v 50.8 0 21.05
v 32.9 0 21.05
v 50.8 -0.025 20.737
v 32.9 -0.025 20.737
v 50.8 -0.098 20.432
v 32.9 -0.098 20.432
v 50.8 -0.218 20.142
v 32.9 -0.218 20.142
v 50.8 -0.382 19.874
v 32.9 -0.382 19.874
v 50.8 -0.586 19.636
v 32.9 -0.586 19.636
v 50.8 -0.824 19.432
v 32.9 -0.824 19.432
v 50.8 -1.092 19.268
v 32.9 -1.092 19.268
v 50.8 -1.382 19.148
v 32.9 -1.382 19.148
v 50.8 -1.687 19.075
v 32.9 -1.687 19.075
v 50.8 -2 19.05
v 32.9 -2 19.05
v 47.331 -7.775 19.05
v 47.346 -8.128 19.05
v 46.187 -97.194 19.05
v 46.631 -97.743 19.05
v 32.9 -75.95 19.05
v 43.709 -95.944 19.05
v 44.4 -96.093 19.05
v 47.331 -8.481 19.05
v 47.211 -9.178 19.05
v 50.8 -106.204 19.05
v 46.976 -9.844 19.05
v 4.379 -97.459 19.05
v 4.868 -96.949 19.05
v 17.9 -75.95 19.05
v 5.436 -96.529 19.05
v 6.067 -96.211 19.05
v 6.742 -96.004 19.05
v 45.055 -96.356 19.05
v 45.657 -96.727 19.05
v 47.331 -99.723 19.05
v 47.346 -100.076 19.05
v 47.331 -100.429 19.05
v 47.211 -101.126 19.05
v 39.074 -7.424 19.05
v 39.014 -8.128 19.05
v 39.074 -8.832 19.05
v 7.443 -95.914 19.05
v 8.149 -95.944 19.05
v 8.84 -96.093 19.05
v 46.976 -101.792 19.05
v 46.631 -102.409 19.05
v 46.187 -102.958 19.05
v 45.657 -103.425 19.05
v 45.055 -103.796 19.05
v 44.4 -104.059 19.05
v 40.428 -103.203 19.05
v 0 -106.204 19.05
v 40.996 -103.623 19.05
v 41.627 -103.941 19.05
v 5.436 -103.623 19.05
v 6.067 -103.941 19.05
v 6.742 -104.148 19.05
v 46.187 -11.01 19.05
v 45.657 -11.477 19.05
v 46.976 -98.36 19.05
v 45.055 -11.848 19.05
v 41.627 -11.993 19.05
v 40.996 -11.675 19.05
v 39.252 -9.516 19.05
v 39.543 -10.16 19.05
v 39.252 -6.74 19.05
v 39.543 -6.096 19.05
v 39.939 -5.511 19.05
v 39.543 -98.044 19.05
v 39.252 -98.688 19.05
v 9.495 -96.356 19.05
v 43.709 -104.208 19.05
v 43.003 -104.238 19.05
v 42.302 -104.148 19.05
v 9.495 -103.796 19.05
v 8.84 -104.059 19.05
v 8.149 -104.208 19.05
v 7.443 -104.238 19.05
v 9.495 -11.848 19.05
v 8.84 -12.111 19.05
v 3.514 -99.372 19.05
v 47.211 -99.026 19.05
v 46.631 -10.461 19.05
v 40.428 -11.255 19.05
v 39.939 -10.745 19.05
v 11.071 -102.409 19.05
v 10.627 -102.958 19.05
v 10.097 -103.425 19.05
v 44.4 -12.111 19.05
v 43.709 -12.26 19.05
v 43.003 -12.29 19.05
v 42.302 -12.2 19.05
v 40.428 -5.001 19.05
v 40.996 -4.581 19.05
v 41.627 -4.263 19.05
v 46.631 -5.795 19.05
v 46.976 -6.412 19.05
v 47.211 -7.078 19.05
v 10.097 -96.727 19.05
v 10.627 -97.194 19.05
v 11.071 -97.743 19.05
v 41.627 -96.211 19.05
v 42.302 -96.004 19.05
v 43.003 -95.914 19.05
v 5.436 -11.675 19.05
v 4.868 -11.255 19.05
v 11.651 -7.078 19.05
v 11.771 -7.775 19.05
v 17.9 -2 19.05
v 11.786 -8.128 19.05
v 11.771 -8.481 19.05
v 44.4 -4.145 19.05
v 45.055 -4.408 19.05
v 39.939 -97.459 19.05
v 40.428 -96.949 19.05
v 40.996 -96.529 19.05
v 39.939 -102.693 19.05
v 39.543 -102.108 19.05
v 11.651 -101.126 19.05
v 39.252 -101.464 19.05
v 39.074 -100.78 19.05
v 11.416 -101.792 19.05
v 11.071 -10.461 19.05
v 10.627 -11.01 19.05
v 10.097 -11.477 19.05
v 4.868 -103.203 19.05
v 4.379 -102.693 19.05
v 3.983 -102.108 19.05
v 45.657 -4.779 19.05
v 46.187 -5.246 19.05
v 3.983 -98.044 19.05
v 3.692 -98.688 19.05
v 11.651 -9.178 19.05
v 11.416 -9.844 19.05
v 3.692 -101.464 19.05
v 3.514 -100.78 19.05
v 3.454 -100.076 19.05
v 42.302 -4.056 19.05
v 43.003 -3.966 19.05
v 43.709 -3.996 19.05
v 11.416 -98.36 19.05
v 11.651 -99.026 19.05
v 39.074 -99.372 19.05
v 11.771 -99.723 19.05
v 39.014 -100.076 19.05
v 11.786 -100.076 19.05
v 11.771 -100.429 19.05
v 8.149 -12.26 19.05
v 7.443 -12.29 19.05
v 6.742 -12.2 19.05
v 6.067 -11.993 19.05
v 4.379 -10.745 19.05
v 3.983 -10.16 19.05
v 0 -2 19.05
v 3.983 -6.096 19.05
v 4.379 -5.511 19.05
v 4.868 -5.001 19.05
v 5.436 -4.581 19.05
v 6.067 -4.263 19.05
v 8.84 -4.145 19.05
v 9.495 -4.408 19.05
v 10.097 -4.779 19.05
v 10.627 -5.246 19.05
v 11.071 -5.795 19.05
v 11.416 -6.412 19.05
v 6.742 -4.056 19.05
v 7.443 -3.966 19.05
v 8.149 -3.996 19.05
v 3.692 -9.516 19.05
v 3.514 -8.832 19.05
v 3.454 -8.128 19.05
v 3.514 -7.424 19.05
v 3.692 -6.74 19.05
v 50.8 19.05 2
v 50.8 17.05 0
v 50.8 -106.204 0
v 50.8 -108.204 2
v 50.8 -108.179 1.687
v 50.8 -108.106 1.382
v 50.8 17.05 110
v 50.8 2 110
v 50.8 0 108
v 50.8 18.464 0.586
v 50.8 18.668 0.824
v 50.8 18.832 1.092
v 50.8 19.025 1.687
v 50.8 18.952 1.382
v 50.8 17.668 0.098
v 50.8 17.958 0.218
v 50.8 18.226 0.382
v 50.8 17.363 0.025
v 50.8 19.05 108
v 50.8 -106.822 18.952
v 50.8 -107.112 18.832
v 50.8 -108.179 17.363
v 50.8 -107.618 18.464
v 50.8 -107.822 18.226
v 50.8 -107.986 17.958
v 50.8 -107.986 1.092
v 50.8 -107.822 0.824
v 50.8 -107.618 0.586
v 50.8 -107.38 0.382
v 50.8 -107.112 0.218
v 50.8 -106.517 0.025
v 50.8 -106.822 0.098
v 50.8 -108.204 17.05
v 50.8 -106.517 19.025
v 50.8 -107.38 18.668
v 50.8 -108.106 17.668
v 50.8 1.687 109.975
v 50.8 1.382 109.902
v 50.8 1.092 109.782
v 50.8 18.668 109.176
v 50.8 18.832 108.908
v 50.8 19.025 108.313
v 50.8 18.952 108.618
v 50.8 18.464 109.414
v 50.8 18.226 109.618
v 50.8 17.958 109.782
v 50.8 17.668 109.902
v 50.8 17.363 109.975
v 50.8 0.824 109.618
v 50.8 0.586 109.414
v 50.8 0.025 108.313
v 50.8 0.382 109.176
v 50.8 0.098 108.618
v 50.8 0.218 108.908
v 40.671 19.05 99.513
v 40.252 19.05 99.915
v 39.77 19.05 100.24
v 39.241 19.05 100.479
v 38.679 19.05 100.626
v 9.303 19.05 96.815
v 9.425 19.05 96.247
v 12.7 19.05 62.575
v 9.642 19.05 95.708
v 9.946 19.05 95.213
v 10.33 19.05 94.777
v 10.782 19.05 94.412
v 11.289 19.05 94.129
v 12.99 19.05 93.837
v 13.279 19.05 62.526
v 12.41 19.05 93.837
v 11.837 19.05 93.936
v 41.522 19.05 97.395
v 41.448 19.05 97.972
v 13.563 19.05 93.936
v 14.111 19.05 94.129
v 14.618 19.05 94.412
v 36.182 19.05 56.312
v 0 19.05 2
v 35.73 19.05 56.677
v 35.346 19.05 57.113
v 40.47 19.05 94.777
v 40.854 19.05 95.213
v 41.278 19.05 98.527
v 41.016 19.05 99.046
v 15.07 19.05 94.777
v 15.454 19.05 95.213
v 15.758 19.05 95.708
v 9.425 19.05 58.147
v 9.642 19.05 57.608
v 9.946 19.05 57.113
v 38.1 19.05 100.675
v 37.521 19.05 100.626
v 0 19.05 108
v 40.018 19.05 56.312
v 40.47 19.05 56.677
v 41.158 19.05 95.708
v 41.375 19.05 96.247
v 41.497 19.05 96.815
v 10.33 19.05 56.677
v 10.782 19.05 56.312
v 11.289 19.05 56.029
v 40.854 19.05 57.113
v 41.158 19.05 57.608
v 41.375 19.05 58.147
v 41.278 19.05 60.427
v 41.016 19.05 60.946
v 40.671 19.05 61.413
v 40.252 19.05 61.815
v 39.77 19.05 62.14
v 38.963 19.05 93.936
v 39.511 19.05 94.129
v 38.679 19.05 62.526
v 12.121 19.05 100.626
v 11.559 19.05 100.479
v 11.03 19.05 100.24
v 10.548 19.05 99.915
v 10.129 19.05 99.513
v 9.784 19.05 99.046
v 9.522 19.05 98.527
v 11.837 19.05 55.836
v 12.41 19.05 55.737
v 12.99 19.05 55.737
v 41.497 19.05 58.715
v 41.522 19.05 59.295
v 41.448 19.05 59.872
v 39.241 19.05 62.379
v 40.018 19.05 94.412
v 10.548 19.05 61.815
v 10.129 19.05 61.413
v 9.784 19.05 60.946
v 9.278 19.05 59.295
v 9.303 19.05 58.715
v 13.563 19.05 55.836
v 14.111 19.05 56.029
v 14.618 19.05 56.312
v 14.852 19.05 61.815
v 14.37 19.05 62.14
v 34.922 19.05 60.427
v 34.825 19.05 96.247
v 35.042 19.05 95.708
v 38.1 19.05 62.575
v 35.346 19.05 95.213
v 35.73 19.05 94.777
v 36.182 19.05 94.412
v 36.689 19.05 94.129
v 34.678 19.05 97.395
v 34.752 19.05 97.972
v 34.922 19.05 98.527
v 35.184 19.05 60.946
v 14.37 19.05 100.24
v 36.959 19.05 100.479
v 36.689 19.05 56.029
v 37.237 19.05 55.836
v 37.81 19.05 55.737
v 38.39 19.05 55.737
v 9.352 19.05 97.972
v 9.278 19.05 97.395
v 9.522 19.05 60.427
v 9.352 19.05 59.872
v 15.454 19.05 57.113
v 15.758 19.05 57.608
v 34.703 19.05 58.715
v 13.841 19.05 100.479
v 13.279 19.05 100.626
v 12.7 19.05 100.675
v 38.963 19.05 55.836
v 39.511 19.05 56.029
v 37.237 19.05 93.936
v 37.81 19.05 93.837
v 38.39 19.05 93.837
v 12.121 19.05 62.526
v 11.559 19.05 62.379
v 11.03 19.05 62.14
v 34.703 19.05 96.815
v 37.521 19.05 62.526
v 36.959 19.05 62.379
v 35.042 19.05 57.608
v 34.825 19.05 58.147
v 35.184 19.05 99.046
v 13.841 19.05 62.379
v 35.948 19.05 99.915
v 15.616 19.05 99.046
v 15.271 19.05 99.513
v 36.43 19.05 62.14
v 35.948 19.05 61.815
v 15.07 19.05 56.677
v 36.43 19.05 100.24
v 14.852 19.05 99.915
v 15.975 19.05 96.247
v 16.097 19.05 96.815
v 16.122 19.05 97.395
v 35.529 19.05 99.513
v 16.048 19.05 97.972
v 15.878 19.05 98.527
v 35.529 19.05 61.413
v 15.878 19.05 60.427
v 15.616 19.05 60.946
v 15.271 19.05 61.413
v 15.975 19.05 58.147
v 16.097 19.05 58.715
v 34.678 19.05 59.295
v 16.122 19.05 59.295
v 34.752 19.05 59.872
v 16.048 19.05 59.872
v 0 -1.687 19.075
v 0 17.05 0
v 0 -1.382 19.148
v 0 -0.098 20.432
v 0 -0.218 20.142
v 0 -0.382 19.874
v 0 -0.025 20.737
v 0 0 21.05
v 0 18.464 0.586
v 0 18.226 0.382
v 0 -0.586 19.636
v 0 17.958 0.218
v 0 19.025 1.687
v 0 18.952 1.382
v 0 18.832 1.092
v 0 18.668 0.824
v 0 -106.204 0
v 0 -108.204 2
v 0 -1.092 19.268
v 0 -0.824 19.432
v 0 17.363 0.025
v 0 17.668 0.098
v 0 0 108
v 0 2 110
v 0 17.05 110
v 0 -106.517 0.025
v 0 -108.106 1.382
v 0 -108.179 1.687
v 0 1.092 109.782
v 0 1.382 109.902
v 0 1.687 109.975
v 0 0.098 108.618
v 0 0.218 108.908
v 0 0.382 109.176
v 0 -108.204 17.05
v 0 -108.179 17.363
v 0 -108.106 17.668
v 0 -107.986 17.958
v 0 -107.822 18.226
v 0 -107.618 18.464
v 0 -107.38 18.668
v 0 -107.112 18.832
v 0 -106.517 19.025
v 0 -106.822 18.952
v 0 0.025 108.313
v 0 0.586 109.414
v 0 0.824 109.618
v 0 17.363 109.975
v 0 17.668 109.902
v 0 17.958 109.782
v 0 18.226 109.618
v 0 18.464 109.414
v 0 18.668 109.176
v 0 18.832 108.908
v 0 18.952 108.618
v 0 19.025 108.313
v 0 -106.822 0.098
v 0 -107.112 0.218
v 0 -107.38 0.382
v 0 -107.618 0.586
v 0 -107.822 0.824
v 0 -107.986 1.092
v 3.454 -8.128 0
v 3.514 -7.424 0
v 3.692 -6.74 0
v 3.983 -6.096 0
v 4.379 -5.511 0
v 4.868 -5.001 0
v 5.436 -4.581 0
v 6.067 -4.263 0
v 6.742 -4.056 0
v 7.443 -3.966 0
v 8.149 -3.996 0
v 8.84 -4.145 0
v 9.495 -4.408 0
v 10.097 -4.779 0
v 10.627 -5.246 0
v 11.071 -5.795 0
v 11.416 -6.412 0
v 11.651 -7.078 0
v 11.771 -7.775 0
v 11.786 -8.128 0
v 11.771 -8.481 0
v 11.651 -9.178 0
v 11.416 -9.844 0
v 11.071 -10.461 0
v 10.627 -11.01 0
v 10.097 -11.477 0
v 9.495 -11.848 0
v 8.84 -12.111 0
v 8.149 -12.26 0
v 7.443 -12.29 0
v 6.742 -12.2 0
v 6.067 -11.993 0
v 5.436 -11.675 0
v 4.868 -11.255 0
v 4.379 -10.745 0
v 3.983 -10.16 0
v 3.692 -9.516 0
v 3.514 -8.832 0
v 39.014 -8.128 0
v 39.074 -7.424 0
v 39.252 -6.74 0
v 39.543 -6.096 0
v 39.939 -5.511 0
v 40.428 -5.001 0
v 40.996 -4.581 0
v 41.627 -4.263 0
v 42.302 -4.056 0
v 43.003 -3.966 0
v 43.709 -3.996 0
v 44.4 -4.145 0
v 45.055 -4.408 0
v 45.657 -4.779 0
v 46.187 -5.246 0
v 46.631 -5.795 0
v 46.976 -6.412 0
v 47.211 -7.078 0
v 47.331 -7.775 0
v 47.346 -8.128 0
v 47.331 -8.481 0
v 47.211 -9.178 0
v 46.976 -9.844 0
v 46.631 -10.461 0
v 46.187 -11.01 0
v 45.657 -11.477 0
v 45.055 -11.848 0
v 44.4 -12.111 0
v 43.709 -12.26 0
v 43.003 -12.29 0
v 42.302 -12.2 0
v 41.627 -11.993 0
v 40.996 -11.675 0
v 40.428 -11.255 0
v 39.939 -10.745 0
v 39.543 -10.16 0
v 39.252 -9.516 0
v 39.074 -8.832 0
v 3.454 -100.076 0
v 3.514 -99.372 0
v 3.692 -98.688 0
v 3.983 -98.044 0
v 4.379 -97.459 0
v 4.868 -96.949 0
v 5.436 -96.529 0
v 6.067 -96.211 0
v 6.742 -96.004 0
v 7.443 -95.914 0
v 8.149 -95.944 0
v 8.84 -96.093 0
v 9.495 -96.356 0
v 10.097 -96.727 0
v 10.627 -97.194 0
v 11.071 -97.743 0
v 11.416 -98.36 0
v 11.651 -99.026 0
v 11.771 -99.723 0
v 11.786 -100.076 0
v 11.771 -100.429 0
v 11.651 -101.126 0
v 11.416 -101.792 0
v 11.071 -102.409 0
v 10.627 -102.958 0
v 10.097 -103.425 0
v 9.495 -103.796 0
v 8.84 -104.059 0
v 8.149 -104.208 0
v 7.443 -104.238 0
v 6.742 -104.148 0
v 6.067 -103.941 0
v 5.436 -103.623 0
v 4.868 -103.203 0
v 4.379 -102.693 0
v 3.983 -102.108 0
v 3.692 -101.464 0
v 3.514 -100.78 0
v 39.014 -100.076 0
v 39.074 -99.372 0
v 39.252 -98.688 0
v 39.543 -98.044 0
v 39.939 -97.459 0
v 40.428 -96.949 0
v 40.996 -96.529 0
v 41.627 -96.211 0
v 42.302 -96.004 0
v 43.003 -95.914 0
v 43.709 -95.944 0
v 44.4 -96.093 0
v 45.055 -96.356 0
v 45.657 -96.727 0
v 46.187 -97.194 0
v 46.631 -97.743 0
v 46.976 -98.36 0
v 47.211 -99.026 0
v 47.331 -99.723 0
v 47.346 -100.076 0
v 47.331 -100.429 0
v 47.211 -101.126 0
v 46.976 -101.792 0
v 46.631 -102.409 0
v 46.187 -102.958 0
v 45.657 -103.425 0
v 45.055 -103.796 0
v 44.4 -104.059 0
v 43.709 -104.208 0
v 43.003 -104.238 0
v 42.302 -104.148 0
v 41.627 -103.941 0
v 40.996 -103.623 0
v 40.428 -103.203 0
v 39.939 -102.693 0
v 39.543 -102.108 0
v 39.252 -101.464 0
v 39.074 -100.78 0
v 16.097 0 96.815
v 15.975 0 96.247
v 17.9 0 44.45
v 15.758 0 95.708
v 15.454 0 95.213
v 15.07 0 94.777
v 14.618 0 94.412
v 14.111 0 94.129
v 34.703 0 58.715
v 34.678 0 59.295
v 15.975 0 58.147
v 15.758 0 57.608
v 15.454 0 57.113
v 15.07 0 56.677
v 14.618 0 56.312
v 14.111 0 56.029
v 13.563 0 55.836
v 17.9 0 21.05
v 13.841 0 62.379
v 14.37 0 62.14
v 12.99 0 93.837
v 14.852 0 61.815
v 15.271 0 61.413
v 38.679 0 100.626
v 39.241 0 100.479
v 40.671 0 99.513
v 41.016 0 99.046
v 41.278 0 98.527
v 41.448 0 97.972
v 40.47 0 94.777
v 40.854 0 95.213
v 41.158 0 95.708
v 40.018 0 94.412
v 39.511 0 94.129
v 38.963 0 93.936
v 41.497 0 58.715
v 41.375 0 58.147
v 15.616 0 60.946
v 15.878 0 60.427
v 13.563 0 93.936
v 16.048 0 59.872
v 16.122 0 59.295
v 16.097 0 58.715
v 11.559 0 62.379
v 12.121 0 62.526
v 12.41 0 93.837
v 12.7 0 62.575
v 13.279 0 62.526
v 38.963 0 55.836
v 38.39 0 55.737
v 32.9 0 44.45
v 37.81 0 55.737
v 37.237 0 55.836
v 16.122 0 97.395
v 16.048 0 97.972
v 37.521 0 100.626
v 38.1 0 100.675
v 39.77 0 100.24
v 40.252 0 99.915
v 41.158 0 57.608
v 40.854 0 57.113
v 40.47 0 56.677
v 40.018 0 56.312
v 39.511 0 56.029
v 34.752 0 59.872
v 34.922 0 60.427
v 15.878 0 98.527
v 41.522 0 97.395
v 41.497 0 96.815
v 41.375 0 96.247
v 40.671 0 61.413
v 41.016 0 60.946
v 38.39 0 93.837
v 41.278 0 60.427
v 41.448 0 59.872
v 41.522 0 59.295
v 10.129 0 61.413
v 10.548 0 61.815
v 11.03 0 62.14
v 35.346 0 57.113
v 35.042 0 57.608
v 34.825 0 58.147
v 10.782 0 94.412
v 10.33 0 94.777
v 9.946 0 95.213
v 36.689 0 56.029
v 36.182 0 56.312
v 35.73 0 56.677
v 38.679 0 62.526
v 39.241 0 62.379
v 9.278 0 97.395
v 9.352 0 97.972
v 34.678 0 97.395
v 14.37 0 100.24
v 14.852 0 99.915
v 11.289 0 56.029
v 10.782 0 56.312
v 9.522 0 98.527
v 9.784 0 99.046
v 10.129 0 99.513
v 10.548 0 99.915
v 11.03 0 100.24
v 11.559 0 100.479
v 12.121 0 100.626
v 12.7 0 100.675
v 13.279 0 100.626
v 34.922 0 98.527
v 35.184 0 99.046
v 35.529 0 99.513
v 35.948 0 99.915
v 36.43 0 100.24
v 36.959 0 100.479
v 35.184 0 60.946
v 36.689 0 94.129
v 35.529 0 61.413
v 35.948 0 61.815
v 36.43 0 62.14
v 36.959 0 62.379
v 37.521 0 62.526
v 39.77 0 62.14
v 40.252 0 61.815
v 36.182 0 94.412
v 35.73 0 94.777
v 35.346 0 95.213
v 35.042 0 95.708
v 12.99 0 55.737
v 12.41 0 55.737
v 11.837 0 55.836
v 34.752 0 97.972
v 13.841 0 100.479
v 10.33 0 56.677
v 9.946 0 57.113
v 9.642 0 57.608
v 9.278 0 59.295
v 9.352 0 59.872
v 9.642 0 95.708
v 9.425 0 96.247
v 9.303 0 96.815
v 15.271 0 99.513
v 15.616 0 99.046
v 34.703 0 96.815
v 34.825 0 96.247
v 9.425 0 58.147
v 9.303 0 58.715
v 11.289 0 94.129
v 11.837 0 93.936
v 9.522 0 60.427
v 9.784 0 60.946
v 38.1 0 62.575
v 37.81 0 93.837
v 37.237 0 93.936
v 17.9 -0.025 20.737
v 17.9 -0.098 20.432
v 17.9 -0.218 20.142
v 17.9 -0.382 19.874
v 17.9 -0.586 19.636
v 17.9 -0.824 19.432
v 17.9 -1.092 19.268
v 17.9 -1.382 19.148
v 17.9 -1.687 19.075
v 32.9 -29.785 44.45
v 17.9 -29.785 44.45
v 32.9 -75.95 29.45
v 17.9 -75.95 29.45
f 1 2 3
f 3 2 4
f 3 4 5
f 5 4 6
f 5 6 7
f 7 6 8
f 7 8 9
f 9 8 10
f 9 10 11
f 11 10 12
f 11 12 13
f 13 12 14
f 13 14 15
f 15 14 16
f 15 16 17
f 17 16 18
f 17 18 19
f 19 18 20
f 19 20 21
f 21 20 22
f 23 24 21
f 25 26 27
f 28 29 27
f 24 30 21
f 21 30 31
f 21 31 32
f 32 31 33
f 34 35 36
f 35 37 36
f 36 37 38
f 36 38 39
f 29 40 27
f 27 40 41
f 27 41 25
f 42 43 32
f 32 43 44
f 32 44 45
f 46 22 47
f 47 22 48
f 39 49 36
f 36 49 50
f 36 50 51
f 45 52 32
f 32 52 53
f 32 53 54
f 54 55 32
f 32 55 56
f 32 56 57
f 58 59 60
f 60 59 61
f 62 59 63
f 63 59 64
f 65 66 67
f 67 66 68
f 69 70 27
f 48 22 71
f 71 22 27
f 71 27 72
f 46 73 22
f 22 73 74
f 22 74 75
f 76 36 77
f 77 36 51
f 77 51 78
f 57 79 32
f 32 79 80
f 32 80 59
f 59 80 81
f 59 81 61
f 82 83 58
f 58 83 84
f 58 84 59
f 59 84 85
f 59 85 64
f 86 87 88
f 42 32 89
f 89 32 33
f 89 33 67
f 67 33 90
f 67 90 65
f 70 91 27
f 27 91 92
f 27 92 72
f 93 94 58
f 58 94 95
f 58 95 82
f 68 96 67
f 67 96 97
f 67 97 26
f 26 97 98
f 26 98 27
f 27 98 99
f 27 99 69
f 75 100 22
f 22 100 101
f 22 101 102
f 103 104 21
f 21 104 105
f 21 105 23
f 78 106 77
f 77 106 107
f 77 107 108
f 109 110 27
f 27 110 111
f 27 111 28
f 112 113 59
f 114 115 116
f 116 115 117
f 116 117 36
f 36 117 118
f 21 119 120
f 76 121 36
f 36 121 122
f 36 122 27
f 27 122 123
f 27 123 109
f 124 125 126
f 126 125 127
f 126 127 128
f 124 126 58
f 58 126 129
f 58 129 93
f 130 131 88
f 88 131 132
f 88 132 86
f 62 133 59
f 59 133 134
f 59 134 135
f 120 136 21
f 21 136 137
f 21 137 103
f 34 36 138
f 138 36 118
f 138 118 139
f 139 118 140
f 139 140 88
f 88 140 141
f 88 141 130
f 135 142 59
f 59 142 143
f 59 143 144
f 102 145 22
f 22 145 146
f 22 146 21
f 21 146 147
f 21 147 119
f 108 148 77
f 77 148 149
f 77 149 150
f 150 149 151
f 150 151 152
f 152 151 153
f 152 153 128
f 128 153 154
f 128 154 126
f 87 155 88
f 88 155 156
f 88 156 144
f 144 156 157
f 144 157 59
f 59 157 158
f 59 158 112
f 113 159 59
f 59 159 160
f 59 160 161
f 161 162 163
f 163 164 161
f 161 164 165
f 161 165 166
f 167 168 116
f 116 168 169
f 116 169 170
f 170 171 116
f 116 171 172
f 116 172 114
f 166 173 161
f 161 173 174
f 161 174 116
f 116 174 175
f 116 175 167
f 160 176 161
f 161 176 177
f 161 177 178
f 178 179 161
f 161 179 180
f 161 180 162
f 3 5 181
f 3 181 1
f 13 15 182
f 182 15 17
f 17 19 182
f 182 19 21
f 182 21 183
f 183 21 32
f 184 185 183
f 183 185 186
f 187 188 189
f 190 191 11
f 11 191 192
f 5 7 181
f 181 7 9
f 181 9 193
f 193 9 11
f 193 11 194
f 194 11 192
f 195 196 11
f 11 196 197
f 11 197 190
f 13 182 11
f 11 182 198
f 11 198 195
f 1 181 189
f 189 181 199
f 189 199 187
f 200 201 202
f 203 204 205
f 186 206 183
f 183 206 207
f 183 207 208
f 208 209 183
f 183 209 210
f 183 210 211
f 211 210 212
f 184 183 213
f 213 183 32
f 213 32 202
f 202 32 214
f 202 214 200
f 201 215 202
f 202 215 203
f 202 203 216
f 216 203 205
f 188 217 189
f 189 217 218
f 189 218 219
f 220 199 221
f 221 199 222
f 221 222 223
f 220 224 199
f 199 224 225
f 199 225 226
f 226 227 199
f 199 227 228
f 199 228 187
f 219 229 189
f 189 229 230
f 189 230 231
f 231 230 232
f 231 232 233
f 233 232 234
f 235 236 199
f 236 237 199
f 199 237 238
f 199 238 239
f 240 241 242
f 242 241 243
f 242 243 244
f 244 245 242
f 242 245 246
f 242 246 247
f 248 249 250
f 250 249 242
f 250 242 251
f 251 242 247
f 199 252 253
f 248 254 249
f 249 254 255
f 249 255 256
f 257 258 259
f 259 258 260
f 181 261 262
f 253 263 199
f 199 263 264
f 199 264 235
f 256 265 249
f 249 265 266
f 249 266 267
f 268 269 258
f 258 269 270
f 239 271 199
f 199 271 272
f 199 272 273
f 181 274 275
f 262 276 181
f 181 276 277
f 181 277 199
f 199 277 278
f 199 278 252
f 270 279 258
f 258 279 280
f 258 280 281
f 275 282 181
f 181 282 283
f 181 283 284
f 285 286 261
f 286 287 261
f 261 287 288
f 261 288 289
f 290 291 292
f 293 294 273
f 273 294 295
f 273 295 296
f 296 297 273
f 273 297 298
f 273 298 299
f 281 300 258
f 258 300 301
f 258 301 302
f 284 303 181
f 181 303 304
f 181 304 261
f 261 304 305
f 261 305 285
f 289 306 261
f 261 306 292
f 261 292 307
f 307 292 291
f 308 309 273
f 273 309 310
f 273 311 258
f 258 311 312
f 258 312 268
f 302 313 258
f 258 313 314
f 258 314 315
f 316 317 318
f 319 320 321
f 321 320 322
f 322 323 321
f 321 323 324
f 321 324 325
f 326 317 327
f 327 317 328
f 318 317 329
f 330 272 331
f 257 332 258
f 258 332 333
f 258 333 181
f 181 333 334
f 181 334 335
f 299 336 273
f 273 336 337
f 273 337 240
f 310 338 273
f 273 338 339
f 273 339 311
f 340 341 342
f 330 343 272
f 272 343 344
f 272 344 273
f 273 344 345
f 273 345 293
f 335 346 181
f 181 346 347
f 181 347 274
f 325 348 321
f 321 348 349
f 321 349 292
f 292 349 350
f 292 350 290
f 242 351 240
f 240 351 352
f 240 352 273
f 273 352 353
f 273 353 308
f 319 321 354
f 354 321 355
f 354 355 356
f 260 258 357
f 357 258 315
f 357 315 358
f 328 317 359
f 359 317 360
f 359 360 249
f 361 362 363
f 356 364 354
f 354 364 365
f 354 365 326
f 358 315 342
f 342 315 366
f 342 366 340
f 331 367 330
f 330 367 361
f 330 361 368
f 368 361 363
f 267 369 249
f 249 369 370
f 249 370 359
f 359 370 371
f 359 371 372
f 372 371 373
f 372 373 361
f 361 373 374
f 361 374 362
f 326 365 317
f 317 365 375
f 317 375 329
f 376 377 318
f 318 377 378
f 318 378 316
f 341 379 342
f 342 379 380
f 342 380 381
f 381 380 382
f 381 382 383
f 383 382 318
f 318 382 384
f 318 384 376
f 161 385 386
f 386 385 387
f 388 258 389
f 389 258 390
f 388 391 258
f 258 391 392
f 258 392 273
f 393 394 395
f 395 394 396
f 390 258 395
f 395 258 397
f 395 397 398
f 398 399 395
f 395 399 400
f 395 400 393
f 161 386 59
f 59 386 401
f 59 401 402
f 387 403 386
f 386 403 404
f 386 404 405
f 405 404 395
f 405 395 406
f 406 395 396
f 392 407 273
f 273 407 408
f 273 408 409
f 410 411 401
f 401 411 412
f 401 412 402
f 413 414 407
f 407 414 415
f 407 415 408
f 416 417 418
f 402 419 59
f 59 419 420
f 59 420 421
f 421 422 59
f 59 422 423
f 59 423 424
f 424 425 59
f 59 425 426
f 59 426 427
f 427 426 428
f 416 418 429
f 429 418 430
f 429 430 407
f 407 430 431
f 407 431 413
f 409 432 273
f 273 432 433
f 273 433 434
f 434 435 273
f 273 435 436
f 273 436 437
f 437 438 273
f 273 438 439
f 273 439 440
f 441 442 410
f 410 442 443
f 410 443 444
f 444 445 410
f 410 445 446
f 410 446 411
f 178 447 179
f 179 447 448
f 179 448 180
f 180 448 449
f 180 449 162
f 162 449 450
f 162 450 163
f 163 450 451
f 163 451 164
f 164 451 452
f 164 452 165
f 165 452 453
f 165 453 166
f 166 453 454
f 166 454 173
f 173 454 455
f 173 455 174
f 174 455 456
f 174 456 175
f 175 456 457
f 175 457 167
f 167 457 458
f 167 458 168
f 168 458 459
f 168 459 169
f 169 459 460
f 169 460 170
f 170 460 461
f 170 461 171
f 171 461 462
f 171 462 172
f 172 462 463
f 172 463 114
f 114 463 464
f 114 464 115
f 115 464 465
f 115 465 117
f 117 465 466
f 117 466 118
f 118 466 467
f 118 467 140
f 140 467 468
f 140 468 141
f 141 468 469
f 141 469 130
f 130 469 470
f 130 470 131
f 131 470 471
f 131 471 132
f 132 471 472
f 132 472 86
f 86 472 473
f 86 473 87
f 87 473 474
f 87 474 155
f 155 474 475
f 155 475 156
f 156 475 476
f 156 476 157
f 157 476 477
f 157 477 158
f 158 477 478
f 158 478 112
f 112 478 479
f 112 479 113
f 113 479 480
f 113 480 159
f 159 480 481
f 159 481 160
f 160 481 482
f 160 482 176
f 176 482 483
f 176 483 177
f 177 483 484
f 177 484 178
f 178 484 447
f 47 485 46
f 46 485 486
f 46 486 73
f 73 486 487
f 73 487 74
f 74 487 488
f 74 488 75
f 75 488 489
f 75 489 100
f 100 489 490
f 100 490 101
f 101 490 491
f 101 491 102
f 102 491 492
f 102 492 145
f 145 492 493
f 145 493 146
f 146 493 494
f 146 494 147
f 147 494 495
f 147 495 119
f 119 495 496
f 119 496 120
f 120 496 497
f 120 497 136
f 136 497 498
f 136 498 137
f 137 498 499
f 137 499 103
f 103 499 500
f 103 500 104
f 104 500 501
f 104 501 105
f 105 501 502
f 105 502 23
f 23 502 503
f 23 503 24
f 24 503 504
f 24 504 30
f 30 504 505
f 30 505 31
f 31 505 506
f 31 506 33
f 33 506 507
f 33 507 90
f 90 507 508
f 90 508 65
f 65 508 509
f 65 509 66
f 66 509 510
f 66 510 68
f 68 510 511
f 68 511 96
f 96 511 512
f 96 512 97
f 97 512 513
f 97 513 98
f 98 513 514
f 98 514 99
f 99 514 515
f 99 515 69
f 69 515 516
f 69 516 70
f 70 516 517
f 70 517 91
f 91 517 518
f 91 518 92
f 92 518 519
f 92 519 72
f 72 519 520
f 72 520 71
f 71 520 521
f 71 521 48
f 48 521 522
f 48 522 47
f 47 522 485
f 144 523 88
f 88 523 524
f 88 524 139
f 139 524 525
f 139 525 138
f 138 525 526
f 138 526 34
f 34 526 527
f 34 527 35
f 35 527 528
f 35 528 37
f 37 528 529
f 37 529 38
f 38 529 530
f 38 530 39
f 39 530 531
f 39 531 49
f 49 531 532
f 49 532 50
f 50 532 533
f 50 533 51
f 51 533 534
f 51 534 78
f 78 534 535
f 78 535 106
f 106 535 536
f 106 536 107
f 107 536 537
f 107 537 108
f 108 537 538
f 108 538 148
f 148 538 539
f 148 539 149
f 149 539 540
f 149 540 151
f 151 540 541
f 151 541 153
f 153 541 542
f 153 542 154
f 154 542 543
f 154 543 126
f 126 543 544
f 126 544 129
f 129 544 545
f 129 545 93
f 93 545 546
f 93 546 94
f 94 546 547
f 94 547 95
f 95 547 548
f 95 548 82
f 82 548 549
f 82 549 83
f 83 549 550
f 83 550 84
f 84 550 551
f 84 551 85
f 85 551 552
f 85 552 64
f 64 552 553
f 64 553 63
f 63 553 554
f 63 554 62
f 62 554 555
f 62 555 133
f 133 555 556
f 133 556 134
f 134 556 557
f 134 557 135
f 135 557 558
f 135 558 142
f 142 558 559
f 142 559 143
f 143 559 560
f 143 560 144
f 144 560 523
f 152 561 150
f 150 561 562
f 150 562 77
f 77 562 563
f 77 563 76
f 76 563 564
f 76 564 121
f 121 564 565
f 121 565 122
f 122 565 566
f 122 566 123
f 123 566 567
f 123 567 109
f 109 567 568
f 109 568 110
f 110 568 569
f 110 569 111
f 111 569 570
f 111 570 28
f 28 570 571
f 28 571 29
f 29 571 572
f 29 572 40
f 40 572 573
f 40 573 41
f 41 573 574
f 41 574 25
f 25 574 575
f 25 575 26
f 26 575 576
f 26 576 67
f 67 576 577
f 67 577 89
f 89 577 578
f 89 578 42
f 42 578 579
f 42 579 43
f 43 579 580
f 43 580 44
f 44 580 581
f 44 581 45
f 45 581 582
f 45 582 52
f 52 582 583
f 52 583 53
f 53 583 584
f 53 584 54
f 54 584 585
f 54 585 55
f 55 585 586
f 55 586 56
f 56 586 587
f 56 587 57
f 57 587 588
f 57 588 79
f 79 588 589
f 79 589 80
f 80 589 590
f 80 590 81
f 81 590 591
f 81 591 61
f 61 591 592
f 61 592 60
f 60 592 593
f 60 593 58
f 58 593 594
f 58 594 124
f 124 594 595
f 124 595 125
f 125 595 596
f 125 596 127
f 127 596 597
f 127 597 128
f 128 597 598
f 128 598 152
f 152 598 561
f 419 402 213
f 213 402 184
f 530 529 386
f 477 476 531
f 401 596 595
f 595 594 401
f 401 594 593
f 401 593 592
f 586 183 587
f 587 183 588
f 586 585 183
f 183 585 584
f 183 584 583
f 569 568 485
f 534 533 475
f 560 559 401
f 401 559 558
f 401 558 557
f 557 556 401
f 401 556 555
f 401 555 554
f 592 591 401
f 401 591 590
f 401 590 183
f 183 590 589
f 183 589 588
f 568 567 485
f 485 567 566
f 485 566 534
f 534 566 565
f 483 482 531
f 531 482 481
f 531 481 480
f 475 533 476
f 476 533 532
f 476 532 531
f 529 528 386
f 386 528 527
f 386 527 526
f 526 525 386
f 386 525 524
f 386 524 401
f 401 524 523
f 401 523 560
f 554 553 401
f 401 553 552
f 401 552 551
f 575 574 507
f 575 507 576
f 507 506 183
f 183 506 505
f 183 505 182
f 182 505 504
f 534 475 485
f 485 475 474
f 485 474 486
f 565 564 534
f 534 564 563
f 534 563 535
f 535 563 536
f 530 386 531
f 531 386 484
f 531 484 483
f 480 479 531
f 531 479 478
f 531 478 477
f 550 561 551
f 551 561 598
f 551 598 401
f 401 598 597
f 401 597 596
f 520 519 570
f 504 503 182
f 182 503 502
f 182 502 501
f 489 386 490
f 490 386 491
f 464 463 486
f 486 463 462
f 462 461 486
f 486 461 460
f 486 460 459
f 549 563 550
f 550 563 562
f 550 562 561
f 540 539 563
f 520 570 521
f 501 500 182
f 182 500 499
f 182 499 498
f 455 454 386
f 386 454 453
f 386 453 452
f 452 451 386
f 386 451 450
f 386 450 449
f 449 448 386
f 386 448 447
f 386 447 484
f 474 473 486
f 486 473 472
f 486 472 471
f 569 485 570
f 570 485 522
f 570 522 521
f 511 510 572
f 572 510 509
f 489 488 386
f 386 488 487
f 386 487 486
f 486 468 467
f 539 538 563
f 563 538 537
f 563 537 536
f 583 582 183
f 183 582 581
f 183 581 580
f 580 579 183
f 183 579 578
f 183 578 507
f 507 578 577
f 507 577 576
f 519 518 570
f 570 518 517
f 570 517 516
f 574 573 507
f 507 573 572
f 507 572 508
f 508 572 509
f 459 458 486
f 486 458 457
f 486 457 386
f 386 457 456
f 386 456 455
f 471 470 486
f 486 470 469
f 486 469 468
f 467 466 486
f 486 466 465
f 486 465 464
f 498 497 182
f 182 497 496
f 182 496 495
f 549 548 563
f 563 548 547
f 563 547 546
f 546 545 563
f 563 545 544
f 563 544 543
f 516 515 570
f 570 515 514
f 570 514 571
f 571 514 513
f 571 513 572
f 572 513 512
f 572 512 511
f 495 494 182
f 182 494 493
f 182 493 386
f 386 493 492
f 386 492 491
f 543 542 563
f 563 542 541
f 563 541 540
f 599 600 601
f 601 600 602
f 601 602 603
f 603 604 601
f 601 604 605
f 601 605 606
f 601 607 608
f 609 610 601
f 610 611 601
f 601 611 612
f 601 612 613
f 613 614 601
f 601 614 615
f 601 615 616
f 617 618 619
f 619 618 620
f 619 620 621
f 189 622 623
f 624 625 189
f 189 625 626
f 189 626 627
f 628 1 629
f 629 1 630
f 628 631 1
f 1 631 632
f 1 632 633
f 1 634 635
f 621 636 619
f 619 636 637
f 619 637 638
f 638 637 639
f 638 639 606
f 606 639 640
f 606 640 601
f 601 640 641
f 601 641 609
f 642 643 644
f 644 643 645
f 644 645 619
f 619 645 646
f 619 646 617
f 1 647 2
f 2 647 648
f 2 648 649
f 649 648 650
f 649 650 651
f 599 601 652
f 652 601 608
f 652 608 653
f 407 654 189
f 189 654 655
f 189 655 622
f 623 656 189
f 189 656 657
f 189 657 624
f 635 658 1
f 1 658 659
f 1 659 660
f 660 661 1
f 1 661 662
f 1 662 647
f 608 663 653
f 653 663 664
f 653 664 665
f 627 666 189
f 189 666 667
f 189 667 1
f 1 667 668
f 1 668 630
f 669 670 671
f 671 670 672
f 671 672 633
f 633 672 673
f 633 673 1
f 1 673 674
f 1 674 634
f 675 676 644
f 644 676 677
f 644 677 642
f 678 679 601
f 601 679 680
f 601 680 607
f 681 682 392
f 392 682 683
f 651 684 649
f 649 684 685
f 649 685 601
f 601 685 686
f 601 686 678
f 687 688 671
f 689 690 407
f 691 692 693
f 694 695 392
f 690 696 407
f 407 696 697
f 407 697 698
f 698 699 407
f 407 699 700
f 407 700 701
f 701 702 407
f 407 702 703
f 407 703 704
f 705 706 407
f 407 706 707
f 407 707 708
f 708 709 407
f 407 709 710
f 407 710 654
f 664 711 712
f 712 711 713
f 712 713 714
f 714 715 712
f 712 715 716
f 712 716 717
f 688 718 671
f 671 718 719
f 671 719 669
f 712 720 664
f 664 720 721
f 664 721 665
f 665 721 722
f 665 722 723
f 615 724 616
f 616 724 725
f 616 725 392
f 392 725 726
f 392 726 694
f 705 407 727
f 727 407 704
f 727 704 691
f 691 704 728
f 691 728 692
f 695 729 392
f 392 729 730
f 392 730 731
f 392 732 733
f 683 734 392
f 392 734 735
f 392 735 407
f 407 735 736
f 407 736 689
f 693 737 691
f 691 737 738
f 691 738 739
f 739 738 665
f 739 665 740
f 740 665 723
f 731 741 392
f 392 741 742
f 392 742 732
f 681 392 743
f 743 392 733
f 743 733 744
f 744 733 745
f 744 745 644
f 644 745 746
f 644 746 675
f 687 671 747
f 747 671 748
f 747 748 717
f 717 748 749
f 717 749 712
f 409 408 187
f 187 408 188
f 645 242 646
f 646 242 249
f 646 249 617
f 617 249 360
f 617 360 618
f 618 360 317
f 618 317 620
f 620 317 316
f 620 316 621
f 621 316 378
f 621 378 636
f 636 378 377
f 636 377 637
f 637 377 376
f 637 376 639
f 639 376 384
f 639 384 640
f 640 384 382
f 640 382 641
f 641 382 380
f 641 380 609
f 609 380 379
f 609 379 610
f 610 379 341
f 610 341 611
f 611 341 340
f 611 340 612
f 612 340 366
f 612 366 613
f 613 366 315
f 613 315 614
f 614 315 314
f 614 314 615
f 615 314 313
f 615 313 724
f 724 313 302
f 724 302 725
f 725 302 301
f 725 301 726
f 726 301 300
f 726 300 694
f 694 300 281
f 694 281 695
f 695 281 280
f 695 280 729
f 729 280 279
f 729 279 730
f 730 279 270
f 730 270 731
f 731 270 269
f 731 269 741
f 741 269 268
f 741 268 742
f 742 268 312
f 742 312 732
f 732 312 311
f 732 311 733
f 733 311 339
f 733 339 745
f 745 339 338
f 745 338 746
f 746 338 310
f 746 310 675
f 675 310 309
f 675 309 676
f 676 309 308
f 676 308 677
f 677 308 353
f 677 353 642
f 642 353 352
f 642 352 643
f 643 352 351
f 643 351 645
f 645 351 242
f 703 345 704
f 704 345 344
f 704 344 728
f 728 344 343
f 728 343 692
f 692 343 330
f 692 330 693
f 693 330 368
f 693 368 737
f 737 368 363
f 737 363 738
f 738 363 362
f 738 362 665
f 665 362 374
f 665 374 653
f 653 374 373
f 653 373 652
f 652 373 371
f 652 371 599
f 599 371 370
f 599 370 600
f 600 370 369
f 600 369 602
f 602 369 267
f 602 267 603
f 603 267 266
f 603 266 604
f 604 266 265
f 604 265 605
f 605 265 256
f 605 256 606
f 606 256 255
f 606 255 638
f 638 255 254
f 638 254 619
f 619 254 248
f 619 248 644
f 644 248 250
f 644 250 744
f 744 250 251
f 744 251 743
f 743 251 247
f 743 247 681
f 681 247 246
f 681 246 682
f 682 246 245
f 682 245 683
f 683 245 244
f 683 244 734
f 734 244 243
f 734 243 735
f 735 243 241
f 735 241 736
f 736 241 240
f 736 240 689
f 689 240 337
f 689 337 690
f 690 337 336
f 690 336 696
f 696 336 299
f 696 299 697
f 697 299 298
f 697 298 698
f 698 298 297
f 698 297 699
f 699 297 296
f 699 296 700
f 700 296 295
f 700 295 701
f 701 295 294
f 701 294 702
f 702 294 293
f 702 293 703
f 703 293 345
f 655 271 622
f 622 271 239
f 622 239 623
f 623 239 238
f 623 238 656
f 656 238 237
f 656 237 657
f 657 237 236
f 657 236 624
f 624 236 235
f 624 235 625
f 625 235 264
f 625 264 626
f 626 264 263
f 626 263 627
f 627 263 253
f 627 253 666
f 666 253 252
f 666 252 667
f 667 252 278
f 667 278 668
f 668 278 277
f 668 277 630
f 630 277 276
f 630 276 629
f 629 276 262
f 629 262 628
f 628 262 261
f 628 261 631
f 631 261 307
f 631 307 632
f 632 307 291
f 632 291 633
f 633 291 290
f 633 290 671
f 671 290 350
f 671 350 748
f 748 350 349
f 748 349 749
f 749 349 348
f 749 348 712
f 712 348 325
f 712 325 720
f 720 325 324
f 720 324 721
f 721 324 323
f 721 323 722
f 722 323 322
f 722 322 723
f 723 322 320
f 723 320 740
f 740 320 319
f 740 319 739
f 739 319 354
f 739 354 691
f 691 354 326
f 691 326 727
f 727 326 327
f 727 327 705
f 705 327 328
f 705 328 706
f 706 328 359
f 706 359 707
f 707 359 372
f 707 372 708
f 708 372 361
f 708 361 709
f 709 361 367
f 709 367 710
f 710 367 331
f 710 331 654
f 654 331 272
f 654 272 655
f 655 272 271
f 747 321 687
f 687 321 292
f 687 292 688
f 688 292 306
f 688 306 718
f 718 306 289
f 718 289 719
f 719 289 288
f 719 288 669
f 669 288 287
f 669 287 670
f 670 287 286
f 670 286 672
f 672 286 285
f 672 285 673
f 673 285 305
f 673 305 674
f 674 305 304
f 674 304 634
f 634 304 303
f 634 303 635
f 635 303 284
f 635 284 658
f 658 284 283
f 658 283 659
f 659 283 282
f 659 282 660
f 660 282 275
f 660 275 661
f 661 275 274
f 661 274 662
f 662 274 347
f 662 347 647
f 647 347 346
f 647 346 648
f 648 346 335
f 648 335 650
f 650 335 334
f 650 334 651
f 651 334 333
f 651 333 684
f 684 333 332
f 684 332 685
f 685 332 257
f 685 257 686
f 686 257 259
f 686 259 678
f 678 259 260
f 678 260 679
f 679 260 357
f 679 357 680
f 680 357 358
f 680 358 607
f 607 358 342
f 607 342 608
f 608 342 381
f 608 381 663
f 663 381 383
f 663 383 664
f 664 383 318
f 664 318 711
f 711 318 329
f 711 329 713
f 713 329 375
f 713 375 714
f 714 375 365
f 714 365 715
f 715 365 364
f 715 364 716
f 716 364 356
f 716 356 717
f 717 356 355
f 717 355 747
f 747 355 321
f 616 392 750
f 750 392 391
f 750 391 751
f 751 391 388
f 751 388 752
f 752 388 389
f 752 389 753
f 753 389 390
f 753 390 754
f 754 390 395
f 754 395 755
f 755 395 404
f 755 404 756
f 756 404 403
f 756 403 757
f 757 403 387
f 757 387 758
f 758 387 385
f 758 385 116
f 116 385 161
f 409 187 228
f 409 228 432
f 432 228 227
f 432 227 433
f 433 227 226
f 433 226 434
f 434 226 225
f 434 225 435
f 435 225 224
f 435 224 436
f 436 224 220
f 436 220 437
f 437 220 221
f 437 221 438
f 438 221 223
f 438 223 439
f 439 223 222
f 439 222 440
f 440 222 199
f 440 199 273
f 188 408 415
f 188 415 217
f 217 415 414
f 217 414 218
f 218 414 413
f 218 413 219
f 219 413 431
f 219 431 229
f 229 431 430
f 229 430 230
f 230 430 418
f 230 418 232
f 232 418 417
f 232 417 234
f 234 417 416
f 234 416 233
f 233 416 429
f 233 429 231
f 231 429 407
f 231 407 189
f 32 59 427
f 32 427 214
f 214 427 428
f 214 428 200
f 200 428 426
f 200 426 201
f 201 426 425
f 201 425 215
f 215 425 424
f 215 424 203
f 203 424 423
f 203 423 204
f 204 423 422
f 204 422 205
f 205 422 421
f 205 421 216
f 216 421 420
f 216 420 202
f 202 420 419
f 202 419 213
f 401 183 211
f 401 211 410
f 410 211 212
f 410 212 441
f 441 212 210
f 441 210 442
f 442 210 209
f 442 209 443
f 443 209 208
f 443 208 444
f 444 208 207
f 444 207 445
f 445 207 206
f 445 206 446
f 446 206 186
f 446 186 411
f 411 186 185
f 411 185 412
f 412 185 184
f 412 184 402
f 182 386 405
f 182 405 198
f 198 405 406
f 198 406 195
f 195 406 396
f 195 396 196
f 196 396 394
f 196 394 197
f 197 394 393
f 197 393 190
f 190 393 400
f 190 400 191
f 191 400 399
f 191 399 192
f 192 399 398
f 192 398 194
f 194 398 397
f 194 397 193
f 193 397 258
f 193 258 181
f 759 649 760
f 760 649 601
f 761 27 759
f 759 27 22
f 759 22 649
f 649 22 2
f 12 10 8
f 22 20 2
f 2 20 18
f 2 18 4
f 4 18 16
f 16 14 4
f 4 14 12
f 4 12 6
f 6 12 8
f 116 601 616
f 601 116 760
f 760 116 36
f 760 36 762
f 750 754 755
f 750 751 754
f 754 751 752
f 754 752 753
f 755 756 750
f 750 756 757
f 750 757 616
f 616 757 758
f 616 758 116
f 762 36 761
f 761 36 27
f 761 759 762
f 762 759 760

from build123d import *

# Parameters (mm, degrees)
SKETCH1_W           = 50.8
SKETCH1_H           = 127.254
SKETCH1_R           = 4.1656
BOSS_EXTRUDE1_DEPTH = 19.05
SKETCH1_3_W         = 50.8
SKETCH1_3_H         = 19.05
BOSS_EXTRUDE2_DEPTH = 110
SKETCH2_R           = 3.425
CUT_EXTRUDE1_DEPTH  = 176.710615832
FILLET1_R           = 2
SKETCH2_4_W         = 15
SKETCH2_4_H         = 25.4
BOSS_EXTRUDE3_DEPTH = 95
CHAMFER1_SIZE       = 15
CHAMFER1_SIZE2      = 46.165253058


with BuildPart() as part:
    # Sketch1 → Boss-Extrude1 (new body)
    with BuildSketch(Plane.XY):
        with Locations((25.4, -44.577)):
            Rectangle(SKETCH1_W, SKETCH1_H)
        with Locations((43.18, -8.128)):
            Circle(SKETCH1_R, mode=Mode.SUBTRACT)
        with Locations((7.62, -100.076)):
            Circle(SKETCH1_R, mode=Mode.SUBTRACT)
        with Locations((43.18, -100.076)):
            Circle(SKETCH1_R, mode=Mode.SUBTRACT)
        with Locations((7.62, -8.128)):
            Circle(SKETCH1_R, mode=Mode.SUBTRACT)
    extrude(amount=BOSS_EXTRUDE1_DEPTH)

    # Sketch1<3> → Boss-Extrude2 (add)
    with BuildSketch(Plane.XY):
        with Locations((25.4, 9.525)):
            Rectangle(SKETCH1_3_W, SKETCH1_3_H)
    extrude(amount=BOSS_EXTRUDE2_DEPTH)

    # Sketch2 → Cut-Extrude1 (cut, through all)
    with BuildSketch(Plane(origin=(0, 19.05, 0), x_dir=(1, 0, 0), z_dir=(0, 1, 0))):
        with Locations((12.7, -97.25)):
            Circle(SKETCH2_R)
        with Locations((38.1, -97.25)):
            Circle(SKETCH2_R)
        with Locations((12.7, -59.15)):
            Circle(SKETCH2_R)
        with Locations((38.1, -59.15)):
            Circle(SKETCH2_R)
    extrude(amount=-CUT_EXTRUDE1_DEPTH, mode=Mode.SUBTRACT)

    # Fillet1
    fillet1_edges = [part.edges().sort_by_distance(p)[0] for p in [
        (25.4, 19.05, 0),
        (25.4, 0, 110),
        (25.4, 19.05, 110),
        (25.4, -108.204, 19.05),
        (25.4, -108.204, 0),
        (25.4, 0, 19.05),
    ]]
    fillet(fillet1_edges, radius=FILLET1_R)

    # Sketch2<4> → Boss-Extrude3 (add)
    with BuildSketch(Plane(origin=(0, 19.05, 0), x_dir=(1, 0, 0), z_dir=(0, 1, 0))):
        with Locations((25.4, -31.75)):
            Rectangle(SKETCH2_4_W, SKETCH2_4_H)
    extrude(amount=-BOSS_EXTRUDE3_DEPTH)

    # Chamfer1
    chamfer1_edges = [part.edges().sort_by_distance(p)[0] for p in [
        (25.4, -75.95, 44.45),
    ]]
    chamfer1_side = [part.faces().sort_by_distance(p)[0] for p in [
        (25.4, -75.95, 31.75),
    ]]
    chamfer(chamfer1_edges, length=CHAMFER1_SIZE, length2=CHAMFER1_SIZE2, reference=chamfer1_side[0])


solid = part.part
